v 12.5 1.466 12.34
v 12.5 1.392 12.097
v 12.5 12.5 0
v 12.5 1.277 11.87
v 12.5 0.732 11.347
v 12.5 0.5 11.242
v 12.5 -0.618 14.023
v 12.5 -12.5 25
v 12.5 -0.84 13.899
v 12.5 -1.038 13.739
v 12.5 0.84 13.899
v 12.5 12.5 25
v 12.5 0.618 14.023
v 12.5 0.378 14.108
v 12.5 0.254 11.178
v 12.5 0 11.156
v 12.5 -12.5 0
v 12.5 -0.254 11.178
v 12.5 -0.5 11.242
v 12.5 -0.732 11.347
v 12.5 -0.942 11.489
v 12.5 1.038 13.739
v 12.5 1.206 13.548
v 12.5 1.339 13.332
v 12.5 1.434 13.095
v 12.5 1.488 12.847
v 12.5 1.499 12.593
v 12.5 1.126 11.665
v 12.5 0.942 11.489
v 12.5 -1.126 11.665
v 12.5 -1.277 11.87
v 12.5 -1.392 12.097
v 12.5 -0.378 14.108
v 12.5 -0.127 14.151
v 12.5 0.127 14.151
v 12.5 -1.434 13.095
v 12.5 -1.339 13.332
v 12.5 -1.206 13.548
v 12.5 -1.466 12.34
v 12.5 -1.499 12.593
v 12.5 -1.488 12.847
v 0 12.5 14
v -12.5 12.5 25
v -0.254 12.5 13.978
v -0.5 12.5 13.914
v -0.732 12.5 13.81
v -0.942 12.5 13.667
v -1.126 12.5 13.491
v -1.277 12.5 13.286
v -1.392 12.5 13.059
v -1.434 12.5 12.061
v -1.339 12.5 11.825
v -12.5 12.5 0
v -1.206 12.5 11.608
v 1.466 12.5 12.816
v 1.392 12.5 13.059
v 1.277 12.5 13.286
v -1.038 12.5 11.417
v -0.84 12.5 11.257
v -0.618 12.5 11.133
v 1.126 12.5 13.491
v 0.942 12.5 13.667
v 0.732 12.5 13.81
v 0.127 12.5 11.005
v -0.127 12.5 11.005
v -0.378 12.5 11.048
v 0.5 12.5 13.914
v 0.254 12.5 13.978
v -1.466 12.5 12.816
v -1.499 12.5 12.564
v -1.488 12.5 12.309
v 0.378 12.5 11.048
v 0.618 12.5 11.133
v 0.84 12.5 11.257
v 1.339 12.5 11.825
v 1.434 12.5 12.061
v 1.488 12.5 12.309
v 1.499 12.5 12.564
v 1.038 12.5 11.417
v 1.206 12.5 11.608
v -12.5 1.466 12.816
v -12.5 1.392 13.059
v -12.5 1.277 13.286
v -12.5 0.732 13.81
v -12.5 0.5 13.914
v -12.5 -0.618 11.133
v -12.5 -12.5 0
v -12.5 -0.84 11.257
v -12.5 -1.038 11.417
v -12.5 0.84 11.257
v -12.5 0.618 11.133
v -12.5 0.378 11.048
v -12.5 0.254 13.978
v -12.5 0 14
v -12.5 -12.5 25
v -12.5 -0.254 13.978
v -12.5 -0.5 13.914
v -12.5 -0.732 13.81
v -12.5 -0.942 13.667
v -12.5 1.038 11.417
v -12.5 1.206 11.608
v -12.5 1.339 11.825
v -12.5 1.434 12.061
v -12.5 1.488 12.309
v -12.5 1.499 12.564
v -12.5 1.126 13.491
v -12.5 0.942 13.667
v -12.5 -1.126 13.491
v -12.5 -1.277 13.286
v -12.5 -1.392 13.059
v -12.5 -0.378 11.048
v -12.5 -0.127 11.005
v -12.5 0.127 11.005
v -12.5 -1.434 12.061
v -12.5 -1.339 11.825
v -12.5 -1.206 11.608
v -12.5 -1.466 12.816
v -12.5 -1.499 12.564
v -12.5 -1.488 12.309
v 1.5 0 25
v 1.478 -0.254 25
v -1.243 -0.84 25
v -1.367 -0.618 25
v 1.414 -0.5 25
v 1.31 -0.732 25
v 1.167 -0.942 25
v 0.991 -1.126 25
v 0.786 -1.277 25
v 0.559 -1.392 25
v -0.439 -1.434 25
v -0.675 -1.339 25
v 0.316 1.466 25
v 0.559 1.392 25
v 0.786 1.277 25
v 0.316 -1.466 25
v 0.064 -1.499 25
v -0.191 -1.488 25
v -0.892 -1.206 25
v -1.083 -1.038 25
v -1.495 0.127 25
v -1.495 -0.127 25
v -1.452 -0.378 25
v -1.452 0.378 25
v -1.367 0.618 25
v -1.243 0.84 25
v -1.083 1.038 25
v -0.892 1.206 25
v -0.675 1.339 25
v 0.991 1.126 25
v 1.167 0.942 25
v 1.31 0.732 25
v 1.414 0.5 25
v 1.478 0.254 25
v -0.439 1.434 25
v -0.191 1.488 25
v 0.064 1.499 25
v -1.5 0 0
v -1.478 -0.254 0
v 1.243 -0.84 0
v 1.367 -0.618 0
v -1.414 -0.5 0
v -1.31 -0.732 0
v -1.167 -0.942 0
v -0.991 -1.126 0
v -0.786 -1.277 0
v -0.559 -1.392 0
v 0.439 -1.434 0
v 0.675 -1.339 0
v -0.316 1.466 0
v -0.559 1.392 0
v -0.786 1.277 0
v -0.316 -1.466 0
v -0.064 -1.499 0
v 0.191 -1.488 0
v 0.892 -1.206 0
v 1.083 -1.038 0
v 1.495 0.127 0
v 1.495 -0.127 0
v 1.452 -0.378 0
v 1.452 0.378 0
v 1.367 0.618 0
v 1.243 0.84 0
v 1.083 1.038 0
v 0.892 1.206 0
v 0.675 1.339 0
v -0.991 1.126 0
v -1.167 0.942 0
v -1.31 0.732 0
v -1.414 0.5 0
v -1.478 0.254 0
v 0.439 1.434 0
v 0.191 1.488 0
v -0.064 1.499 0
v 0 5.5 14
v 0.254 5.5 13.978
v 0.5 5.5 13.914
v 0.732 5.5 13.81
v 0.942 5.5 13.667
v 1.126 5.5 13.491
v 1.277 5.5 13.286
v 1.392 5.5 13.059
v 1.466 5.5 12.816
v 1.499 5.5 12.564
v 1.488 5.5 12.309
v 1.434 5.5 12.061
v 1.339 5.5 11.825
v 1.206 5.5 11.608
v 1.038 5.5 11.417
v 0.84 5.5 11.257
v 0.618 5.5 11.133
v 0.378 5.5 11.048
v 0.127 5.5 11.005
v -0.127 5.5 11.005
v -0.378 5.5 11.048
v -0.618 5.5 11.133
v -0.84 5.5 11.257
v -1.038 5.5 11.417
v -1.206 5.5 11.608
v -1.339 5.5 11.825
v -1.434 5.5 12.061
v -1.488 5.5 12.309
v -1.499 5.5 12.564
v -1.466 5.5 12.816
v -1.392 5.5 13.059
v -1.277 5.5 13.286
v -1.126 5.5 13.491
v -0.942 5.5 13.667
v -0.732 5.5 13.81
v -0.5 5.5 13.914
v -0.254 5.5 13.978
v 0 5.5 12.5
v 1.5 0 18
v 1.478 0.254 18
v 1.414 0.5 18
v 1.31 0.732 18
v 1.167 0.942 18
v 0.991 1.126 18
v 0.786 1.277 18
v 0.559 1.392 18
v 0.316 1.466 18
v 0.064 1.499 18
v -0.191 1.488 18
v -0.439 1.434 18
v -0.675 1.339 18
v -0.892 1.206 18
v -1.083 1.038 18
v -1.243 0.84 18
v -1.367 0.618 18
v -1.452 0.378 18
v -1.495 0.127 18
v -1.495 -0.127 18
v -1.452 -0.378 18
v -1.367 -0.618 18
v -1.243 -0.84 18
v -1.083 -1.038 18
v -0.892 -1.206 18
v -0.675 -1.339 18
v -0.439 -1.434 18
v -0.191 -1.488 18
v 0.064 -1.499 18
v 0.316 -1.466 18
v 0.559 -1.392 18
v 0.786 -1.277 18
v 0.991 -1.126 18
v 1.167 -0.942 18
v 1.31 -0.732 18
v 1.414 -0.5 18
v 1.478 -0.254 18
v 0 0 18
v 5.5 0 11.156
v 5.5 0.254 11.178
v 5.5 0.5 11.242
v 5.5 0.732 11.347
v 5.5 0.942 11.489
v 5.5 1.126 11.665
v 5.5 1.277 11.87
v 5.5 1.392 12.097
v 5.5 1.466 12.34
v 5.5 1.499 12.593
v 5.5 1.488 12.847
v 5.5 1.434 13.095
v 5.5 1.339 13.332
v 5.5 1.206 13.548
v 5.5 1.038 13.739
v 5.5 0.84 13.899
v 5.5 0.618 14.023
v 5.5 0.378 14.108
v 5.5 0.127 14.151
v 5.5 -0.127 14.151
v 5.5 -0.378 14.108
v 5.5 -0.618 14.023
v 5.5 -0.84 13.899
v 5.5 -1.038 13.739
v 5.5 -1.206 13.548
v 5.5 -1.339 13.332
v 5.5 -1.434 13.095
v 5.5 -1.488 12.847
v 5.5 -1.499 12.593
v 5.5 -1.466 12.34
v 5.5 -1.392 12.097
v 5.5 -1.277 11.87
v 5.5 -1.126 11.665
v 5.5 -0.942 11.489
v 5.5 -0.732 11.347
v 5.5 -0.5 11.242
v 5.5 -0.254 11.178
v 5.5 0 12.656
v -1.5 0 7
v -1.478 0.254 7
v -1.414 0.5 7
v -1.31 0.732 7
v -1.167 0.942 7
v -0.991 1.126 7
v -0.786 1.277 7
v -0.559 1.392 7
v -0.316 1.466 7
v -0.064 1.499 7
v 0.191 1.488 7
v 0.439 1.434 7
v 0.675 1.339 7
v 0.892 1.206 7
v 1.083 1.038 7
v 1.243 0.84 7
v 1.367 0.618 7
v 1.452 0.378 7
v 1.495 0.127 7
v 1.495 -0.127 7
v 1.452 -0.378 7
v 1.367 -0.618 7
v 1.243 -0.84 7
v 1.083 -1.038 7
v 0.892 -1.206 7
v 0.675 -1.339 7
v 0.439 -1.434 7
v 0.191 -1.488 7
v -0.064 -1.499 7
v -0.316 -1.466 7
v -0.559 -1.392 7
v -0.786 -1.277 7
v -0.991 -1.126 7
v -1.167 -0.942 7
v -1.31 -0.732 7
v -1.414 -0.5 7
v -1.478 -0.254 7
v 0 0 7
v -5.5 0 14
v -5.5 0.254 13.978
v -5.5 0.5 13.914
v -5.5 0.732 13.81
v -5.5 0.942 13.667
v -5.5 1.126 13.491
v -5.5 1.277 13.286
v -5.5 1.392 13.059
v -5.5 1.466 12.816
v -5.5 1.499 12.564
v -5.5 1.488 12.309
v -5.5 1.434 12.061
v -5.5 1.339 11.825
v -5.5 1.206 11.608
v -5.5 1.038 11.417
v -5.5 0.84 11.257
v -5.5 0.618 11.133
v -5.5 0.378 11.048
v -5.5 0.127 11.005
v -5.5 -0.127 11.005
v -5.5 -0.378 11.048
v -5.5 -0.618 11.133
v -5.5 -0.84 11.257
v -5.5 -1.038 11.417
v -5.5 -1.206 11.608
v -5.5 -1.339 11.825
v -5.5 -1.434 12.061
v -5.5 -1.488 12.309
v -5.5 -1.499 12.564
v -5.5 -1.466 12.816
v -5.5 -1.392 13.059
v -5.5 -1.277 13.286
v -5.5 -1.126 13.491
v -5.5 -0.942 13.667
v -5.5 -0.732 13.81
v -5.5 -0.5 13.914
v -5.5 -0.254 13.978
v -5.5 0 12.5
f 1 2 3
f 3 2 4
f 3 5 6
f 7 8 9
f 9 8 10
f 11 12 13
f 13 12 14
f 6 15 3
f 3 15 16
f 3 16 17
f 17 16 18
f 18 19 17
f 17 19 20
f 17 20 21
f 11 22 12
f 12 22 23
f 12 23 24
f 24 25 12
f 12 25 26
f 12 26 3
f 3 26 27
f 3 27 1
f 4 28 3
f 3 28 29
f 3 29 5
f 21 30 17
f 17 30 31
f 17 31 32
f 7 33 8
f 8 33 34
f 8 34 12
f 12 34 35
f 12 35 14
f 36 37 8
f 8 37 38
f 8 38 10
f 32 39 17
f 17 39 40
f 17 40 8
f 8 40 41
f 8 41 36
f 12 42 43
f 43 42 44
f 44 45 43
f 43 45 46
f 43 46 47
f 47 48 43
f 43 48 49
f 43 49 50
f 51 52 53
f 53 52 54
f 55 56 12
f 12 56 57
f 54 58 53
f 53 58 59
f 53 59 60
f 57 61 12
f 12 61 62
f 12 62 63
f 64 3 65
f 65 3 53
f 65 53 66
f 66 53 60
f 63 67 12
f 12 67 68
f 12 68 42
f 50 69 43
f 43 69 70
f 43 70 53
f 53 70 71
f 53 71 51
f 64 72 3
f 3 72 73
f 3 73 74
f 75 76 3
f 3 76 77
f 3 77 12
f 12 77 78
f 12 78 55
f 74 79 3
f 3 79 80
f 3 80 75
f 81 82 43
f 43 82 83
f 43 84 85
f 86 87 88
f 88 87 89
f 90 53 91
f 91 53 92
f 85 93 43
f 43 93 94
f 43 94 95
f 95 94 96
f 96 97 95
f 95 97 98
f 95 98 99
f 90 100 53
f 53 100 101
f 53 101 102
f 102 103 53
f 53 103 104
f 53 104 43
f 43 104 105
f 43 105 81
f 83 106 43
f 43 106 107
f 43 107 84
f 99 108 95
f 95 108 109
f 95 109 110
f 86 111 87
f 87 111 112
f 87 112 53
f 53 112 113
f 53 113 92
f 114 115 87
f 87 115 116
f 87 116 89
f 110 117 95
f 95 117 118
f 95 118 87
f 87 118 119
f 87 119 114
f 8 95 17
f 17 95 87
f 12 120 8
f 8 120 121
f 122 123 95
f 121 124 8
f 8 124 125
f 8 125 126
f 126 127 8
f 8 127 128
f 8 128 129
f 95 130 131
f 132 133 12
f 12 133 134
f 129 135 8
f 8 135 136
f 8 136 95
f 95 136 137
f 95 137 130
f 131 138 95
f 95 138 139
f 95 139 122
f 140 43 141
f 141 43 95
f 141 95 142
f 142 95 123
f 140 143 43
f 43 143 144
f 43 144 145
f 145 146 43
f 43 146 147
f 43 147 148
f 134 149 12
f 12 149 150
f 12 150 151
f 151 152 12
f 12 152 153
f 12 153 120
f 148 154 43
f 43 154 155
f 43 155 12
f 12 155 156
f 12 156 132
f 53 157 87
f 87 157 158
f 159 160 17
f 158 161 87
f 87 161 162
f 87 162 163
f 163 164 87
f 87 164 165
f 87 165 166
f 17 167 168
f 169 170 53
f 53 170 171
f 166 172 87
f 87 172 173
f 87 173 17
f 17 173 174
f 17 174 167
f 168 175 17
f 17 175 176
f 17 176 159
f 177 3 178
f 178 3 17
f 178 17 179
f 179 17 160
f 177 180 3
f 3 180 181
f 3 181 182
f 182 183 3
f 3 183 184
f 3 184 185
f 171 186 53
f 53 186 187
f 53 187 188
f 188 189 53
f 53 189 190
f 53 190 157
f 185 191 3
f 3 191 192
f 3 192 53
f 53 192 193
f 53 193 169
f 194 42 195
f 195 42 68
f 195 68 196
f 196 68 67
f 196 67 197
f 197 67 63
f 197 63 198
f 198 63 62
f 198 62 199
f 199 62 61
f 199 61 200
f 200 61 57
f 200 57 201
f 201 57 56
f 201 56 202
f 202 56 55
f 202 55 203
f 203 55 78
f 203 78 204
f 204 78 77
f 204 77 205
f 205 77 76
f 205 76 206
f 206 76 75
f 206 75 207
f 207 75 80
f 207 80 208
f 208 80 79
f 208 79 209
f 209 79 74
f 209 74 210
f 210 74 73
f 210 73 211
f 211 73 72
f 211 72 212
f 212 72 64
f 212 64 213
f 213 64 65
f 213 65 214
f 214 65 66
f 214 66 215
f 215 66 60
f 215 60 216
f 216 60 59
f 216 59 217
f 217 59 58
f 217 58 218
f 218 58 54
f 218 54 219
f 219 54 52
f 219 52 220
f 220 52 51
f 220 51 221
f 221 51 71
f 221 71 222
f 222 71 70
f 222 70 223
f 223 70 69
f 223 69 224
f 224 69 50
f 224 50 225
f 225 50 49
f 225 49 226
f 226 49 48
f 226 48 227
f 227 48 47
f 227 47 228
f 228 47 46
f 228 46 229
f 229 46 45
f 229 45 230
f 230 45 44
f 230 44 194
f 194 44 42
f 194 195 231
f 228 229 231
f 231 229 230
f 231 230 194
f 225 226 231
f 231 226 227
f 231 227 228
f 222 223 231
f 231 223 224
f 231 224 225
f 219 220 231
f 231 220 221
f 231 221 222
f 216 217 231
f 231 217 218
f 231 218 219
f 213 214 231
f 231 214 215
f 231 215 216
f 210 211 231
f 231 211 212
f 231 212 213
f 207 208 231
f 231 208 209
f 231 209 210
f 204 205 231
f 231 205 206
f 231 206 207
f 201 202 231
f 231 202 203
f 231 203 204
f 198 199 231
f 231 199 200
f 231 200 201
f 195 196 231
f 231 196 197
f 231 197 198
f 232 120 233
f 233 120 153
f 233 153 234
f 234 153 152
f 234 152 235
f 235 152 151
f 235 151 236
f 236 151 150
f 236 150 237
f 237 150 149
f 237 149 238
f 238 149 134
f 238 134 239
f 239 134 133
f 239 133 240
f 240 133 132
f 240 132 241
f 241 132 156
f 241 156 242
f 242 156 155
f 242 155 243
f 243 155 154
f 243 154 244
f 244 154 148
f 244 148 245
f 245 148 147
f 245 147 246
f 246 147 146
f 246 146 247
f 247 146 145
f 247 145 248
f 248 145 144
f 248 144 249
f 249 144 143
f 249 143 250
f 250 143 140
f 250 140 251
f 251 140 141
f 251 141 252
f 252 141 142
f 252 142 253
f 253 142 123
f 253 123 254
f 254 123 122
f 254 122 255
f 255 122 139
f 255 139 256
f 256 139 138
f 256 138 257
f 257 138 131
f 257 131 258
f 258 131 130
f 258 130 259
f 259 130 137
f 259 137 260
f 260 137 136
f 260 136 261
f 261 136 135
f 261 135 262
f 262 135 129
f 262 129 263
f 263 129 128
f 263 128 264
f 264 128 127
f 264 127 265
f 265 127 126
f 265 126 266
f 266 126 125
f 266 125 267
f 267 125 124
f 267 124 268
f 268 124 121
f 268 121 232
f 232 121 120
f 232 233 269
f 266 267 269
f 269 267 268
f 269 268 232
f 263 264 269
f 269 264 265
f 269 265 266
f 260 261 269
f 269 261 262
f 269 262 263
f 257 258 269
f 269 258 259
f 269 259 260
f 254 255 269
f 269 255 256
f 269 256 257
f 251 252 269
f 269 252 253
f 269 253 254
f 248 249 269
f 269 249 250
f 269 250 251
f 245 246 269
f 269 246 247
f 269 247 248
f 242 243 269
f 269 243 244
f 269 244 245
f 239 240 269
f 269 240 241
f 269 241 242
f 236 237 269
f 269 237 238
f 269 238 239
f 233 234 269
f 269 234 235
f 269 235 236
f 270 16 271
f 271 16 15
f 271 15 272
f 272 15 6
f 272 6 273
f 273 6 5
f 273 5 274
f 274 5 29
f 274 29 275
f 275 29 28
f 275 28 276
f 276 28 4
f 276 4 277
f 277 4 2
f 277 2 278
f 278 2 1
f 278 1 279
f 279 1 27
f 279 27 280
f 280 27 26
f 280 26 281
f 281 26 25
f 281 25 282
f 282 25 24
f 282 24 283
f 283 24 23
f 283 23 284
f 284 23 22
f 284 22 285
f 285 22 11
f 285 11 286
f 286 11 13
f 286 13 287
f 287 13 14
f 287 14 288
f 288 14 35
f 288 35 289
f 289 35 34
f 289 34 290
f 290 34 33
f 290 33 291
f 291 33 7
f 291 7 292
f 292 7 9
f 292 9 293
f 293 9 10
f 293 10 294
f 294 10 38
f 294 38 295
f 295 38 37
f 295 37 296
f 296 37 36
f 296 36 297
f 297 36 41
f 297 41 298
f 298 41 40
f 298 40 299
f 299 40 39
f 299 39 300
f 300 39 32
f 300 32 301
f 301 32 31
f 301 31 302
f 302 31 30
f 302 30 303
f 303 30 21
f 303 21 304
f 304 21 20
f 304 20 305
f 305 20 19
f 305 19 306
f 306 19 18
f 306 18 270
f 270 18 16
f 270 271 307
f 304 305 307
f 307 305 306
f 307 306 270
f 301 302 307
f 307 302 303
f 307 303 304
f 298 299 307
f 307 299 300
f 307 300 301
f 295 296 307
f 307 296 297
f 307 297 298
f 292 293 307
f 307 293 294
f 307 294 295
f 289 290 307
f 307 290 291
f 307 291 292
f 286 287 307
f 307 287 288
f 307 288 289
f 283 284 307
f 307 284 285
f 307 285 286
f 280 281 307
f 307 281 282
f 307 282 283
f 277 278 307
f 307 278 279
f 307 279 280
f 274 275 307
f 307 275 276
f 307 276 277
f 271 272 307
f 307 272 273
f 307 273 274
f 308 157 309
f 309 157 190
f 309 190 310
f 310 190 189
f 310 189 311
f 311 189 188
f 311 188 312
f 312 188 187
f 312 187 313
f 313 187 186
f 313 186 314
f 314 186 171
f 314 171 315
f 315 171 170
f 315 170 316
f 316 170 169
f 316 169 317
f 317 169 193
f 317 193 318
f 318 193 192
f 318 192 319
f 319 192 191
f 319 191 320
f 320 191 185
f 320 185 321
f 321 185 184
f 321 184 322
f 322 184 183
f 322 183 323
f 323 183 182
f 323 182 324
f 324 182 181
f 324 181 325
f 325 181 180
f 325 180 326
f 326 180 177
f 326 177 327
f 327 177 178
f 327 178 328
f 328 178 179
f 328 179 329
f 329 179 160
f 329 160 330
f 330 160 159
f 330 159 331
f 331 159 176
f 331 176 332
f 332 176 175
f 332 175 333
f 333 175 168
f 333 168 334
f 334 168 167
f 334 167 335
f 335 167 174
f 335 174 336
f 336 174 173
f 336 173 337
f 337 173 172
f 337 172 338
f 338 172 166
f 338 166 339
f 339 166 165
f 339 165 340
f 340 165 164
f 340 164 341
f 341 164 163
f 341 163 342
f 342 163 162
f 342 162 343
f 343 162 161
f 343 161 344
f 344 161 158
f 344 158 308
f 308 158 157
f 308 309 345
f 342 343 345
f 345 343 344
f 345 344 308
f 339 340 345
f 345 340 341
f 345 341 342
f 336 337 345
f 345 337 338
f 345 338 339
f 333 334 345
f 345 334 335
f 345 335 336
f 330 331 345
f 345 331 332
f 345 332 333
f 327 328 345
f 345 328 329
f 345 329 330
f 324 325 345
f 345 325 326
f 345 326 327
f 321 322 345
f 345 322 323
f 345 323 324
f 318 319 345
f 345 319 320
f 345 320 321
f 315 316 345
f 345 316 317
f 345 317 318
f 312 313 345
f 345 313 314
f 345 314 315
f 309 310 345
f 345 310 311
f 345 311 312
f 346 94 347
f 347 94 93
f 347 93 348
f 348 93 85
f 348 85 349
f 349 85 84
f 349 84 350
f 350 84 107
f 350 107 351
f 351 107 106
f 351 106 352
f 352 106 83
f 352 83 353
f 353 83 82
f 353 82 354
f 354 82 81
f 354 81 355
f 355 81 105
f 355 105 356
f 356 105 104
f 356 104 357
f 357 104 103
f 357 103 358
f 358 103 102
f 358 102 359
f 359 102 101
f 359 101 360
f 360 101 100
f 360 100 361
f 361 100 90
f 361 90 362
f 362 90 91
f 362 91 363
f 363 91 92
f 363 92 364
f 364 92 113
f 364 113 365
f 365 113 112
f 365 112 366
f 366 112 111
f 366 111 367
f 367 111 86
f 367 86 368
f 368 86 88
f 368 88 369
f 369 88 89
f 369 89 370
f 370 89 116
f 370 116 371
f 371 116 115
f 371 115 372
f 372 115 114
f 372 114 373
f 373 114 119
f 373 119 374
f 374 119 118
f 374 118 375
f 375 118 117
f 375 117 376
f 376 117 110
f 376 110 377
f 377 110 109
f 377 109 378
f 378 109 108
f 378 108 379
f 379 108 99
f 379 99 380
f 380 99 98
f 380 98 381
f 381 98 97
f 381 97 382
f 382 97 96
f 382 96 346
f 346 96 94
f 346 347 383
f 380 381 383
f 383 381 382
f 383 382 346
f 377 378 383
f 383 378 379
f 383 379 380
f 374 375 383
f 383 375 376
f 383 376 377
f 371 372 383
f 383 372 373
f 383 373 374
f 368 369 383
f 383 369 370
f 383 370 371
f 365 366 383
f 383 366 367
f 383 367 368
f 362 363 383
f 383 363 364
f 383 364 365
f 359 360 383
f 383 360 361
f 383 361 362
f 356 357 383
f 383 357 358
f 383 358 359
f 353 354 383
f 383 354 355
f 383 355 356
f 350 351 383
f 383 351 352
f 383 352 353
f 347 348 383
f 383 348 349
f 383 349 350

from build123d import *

# Parameters (mm, degrees)
SKETCH1_W           = 25
SKETCH1_H           = 25
BOSS_EXTRUDE3_DEPTH = 25
SKETCH3_R           = 1.5
CUT_EXTRUDE1_DEPTH  = 7
SKETCH4_R           = 1.5
CUT_EXTRUDE2_DEPTH  = 7
SKETCH5_R           = 1.5
CUT_EXTRUDE3_DEPTH  = 7
CUT_EXTRUDE4_START  = -7
SKETCH6_R           = 1.5
CUT_EXTRUDE4_DEPTH  = 7
SKETCH7_R           = 1.5
CUT_EXTRUDE5_DEPTH  = 7


with BuildPart() as part:
    # Sketch1 → Boss-Extrude3 (new body)
    with BuildSketch(Plane.XY):
        Rectangle(SKETCH1_W, SKETCH1_H)
    extrude(amount=BOSS_EXTRUDE3_DEPTH)

    # Sketch3 → Cut-Extrude1 (cut)
    with BuildSketch(Plane(origin=(0, 12.5, 0), x_dir=(1, 0, 0), z_dir=(0, 1, 0))):
        with Locations(Location((0, -12.5, 0), (0, 0, 270))):
            Circle(SKETCH3_R)
    extrude(amount=-CUT_EXTRUDE1_DEPTH, mode=Mode.SUBTRACT)

    # Sketch4 → Cut-Extrude2 (cut)
    with BuildSketch(Plane.XY.offset(25)):
        Circle(SKETCH4_R)
    extrude(amount=-CUT_EXTRUDE2_DEPTH, mode=Mode.SUBTRACT)

    # Sketch5 → Cut-Extrude3 (cut)
    with BuildSketch(Plane(origin=(12.5, 0, 0), x_dir=(0, 0, -1), z_dir=(1, 0, 0))):
        with Locations((-12.656245037, 0)):
            Circle(SKETCH5_R)
    extrude(amount=-CUT_EXTRUDE3_DEPTH, mode=Mode.SUBTRACT)

    # Sketch6 → Cut-Extrude4 (cut)
    with BuildSketch(Plane(origin=(0, 0, 0), x_dir=(-1, 0, 0), z_dir=(0, 0, -1)).offset(CUT_EXTRUDE4_START)):
        with Locations(Location((0, 0, 0), (0, 0, 180))):
            Circle(SKETCH6_R)
    extrude(amount=CUT_EXTRUDE4_DEPTH, mode=Mode.SUBTRACT)

    # Sketch7 → Cut-Extrude5 (cut)
    with BuildSketch(Plane.ZY.offset(12.5)):
        with Locations((12.5, 0)):
            Circle(SKETCH7_R)
    extrude(amount=-CUT_EXTRUDE5_DEPTH, mode=Mode.SUBTRACT)


solid = part.part
